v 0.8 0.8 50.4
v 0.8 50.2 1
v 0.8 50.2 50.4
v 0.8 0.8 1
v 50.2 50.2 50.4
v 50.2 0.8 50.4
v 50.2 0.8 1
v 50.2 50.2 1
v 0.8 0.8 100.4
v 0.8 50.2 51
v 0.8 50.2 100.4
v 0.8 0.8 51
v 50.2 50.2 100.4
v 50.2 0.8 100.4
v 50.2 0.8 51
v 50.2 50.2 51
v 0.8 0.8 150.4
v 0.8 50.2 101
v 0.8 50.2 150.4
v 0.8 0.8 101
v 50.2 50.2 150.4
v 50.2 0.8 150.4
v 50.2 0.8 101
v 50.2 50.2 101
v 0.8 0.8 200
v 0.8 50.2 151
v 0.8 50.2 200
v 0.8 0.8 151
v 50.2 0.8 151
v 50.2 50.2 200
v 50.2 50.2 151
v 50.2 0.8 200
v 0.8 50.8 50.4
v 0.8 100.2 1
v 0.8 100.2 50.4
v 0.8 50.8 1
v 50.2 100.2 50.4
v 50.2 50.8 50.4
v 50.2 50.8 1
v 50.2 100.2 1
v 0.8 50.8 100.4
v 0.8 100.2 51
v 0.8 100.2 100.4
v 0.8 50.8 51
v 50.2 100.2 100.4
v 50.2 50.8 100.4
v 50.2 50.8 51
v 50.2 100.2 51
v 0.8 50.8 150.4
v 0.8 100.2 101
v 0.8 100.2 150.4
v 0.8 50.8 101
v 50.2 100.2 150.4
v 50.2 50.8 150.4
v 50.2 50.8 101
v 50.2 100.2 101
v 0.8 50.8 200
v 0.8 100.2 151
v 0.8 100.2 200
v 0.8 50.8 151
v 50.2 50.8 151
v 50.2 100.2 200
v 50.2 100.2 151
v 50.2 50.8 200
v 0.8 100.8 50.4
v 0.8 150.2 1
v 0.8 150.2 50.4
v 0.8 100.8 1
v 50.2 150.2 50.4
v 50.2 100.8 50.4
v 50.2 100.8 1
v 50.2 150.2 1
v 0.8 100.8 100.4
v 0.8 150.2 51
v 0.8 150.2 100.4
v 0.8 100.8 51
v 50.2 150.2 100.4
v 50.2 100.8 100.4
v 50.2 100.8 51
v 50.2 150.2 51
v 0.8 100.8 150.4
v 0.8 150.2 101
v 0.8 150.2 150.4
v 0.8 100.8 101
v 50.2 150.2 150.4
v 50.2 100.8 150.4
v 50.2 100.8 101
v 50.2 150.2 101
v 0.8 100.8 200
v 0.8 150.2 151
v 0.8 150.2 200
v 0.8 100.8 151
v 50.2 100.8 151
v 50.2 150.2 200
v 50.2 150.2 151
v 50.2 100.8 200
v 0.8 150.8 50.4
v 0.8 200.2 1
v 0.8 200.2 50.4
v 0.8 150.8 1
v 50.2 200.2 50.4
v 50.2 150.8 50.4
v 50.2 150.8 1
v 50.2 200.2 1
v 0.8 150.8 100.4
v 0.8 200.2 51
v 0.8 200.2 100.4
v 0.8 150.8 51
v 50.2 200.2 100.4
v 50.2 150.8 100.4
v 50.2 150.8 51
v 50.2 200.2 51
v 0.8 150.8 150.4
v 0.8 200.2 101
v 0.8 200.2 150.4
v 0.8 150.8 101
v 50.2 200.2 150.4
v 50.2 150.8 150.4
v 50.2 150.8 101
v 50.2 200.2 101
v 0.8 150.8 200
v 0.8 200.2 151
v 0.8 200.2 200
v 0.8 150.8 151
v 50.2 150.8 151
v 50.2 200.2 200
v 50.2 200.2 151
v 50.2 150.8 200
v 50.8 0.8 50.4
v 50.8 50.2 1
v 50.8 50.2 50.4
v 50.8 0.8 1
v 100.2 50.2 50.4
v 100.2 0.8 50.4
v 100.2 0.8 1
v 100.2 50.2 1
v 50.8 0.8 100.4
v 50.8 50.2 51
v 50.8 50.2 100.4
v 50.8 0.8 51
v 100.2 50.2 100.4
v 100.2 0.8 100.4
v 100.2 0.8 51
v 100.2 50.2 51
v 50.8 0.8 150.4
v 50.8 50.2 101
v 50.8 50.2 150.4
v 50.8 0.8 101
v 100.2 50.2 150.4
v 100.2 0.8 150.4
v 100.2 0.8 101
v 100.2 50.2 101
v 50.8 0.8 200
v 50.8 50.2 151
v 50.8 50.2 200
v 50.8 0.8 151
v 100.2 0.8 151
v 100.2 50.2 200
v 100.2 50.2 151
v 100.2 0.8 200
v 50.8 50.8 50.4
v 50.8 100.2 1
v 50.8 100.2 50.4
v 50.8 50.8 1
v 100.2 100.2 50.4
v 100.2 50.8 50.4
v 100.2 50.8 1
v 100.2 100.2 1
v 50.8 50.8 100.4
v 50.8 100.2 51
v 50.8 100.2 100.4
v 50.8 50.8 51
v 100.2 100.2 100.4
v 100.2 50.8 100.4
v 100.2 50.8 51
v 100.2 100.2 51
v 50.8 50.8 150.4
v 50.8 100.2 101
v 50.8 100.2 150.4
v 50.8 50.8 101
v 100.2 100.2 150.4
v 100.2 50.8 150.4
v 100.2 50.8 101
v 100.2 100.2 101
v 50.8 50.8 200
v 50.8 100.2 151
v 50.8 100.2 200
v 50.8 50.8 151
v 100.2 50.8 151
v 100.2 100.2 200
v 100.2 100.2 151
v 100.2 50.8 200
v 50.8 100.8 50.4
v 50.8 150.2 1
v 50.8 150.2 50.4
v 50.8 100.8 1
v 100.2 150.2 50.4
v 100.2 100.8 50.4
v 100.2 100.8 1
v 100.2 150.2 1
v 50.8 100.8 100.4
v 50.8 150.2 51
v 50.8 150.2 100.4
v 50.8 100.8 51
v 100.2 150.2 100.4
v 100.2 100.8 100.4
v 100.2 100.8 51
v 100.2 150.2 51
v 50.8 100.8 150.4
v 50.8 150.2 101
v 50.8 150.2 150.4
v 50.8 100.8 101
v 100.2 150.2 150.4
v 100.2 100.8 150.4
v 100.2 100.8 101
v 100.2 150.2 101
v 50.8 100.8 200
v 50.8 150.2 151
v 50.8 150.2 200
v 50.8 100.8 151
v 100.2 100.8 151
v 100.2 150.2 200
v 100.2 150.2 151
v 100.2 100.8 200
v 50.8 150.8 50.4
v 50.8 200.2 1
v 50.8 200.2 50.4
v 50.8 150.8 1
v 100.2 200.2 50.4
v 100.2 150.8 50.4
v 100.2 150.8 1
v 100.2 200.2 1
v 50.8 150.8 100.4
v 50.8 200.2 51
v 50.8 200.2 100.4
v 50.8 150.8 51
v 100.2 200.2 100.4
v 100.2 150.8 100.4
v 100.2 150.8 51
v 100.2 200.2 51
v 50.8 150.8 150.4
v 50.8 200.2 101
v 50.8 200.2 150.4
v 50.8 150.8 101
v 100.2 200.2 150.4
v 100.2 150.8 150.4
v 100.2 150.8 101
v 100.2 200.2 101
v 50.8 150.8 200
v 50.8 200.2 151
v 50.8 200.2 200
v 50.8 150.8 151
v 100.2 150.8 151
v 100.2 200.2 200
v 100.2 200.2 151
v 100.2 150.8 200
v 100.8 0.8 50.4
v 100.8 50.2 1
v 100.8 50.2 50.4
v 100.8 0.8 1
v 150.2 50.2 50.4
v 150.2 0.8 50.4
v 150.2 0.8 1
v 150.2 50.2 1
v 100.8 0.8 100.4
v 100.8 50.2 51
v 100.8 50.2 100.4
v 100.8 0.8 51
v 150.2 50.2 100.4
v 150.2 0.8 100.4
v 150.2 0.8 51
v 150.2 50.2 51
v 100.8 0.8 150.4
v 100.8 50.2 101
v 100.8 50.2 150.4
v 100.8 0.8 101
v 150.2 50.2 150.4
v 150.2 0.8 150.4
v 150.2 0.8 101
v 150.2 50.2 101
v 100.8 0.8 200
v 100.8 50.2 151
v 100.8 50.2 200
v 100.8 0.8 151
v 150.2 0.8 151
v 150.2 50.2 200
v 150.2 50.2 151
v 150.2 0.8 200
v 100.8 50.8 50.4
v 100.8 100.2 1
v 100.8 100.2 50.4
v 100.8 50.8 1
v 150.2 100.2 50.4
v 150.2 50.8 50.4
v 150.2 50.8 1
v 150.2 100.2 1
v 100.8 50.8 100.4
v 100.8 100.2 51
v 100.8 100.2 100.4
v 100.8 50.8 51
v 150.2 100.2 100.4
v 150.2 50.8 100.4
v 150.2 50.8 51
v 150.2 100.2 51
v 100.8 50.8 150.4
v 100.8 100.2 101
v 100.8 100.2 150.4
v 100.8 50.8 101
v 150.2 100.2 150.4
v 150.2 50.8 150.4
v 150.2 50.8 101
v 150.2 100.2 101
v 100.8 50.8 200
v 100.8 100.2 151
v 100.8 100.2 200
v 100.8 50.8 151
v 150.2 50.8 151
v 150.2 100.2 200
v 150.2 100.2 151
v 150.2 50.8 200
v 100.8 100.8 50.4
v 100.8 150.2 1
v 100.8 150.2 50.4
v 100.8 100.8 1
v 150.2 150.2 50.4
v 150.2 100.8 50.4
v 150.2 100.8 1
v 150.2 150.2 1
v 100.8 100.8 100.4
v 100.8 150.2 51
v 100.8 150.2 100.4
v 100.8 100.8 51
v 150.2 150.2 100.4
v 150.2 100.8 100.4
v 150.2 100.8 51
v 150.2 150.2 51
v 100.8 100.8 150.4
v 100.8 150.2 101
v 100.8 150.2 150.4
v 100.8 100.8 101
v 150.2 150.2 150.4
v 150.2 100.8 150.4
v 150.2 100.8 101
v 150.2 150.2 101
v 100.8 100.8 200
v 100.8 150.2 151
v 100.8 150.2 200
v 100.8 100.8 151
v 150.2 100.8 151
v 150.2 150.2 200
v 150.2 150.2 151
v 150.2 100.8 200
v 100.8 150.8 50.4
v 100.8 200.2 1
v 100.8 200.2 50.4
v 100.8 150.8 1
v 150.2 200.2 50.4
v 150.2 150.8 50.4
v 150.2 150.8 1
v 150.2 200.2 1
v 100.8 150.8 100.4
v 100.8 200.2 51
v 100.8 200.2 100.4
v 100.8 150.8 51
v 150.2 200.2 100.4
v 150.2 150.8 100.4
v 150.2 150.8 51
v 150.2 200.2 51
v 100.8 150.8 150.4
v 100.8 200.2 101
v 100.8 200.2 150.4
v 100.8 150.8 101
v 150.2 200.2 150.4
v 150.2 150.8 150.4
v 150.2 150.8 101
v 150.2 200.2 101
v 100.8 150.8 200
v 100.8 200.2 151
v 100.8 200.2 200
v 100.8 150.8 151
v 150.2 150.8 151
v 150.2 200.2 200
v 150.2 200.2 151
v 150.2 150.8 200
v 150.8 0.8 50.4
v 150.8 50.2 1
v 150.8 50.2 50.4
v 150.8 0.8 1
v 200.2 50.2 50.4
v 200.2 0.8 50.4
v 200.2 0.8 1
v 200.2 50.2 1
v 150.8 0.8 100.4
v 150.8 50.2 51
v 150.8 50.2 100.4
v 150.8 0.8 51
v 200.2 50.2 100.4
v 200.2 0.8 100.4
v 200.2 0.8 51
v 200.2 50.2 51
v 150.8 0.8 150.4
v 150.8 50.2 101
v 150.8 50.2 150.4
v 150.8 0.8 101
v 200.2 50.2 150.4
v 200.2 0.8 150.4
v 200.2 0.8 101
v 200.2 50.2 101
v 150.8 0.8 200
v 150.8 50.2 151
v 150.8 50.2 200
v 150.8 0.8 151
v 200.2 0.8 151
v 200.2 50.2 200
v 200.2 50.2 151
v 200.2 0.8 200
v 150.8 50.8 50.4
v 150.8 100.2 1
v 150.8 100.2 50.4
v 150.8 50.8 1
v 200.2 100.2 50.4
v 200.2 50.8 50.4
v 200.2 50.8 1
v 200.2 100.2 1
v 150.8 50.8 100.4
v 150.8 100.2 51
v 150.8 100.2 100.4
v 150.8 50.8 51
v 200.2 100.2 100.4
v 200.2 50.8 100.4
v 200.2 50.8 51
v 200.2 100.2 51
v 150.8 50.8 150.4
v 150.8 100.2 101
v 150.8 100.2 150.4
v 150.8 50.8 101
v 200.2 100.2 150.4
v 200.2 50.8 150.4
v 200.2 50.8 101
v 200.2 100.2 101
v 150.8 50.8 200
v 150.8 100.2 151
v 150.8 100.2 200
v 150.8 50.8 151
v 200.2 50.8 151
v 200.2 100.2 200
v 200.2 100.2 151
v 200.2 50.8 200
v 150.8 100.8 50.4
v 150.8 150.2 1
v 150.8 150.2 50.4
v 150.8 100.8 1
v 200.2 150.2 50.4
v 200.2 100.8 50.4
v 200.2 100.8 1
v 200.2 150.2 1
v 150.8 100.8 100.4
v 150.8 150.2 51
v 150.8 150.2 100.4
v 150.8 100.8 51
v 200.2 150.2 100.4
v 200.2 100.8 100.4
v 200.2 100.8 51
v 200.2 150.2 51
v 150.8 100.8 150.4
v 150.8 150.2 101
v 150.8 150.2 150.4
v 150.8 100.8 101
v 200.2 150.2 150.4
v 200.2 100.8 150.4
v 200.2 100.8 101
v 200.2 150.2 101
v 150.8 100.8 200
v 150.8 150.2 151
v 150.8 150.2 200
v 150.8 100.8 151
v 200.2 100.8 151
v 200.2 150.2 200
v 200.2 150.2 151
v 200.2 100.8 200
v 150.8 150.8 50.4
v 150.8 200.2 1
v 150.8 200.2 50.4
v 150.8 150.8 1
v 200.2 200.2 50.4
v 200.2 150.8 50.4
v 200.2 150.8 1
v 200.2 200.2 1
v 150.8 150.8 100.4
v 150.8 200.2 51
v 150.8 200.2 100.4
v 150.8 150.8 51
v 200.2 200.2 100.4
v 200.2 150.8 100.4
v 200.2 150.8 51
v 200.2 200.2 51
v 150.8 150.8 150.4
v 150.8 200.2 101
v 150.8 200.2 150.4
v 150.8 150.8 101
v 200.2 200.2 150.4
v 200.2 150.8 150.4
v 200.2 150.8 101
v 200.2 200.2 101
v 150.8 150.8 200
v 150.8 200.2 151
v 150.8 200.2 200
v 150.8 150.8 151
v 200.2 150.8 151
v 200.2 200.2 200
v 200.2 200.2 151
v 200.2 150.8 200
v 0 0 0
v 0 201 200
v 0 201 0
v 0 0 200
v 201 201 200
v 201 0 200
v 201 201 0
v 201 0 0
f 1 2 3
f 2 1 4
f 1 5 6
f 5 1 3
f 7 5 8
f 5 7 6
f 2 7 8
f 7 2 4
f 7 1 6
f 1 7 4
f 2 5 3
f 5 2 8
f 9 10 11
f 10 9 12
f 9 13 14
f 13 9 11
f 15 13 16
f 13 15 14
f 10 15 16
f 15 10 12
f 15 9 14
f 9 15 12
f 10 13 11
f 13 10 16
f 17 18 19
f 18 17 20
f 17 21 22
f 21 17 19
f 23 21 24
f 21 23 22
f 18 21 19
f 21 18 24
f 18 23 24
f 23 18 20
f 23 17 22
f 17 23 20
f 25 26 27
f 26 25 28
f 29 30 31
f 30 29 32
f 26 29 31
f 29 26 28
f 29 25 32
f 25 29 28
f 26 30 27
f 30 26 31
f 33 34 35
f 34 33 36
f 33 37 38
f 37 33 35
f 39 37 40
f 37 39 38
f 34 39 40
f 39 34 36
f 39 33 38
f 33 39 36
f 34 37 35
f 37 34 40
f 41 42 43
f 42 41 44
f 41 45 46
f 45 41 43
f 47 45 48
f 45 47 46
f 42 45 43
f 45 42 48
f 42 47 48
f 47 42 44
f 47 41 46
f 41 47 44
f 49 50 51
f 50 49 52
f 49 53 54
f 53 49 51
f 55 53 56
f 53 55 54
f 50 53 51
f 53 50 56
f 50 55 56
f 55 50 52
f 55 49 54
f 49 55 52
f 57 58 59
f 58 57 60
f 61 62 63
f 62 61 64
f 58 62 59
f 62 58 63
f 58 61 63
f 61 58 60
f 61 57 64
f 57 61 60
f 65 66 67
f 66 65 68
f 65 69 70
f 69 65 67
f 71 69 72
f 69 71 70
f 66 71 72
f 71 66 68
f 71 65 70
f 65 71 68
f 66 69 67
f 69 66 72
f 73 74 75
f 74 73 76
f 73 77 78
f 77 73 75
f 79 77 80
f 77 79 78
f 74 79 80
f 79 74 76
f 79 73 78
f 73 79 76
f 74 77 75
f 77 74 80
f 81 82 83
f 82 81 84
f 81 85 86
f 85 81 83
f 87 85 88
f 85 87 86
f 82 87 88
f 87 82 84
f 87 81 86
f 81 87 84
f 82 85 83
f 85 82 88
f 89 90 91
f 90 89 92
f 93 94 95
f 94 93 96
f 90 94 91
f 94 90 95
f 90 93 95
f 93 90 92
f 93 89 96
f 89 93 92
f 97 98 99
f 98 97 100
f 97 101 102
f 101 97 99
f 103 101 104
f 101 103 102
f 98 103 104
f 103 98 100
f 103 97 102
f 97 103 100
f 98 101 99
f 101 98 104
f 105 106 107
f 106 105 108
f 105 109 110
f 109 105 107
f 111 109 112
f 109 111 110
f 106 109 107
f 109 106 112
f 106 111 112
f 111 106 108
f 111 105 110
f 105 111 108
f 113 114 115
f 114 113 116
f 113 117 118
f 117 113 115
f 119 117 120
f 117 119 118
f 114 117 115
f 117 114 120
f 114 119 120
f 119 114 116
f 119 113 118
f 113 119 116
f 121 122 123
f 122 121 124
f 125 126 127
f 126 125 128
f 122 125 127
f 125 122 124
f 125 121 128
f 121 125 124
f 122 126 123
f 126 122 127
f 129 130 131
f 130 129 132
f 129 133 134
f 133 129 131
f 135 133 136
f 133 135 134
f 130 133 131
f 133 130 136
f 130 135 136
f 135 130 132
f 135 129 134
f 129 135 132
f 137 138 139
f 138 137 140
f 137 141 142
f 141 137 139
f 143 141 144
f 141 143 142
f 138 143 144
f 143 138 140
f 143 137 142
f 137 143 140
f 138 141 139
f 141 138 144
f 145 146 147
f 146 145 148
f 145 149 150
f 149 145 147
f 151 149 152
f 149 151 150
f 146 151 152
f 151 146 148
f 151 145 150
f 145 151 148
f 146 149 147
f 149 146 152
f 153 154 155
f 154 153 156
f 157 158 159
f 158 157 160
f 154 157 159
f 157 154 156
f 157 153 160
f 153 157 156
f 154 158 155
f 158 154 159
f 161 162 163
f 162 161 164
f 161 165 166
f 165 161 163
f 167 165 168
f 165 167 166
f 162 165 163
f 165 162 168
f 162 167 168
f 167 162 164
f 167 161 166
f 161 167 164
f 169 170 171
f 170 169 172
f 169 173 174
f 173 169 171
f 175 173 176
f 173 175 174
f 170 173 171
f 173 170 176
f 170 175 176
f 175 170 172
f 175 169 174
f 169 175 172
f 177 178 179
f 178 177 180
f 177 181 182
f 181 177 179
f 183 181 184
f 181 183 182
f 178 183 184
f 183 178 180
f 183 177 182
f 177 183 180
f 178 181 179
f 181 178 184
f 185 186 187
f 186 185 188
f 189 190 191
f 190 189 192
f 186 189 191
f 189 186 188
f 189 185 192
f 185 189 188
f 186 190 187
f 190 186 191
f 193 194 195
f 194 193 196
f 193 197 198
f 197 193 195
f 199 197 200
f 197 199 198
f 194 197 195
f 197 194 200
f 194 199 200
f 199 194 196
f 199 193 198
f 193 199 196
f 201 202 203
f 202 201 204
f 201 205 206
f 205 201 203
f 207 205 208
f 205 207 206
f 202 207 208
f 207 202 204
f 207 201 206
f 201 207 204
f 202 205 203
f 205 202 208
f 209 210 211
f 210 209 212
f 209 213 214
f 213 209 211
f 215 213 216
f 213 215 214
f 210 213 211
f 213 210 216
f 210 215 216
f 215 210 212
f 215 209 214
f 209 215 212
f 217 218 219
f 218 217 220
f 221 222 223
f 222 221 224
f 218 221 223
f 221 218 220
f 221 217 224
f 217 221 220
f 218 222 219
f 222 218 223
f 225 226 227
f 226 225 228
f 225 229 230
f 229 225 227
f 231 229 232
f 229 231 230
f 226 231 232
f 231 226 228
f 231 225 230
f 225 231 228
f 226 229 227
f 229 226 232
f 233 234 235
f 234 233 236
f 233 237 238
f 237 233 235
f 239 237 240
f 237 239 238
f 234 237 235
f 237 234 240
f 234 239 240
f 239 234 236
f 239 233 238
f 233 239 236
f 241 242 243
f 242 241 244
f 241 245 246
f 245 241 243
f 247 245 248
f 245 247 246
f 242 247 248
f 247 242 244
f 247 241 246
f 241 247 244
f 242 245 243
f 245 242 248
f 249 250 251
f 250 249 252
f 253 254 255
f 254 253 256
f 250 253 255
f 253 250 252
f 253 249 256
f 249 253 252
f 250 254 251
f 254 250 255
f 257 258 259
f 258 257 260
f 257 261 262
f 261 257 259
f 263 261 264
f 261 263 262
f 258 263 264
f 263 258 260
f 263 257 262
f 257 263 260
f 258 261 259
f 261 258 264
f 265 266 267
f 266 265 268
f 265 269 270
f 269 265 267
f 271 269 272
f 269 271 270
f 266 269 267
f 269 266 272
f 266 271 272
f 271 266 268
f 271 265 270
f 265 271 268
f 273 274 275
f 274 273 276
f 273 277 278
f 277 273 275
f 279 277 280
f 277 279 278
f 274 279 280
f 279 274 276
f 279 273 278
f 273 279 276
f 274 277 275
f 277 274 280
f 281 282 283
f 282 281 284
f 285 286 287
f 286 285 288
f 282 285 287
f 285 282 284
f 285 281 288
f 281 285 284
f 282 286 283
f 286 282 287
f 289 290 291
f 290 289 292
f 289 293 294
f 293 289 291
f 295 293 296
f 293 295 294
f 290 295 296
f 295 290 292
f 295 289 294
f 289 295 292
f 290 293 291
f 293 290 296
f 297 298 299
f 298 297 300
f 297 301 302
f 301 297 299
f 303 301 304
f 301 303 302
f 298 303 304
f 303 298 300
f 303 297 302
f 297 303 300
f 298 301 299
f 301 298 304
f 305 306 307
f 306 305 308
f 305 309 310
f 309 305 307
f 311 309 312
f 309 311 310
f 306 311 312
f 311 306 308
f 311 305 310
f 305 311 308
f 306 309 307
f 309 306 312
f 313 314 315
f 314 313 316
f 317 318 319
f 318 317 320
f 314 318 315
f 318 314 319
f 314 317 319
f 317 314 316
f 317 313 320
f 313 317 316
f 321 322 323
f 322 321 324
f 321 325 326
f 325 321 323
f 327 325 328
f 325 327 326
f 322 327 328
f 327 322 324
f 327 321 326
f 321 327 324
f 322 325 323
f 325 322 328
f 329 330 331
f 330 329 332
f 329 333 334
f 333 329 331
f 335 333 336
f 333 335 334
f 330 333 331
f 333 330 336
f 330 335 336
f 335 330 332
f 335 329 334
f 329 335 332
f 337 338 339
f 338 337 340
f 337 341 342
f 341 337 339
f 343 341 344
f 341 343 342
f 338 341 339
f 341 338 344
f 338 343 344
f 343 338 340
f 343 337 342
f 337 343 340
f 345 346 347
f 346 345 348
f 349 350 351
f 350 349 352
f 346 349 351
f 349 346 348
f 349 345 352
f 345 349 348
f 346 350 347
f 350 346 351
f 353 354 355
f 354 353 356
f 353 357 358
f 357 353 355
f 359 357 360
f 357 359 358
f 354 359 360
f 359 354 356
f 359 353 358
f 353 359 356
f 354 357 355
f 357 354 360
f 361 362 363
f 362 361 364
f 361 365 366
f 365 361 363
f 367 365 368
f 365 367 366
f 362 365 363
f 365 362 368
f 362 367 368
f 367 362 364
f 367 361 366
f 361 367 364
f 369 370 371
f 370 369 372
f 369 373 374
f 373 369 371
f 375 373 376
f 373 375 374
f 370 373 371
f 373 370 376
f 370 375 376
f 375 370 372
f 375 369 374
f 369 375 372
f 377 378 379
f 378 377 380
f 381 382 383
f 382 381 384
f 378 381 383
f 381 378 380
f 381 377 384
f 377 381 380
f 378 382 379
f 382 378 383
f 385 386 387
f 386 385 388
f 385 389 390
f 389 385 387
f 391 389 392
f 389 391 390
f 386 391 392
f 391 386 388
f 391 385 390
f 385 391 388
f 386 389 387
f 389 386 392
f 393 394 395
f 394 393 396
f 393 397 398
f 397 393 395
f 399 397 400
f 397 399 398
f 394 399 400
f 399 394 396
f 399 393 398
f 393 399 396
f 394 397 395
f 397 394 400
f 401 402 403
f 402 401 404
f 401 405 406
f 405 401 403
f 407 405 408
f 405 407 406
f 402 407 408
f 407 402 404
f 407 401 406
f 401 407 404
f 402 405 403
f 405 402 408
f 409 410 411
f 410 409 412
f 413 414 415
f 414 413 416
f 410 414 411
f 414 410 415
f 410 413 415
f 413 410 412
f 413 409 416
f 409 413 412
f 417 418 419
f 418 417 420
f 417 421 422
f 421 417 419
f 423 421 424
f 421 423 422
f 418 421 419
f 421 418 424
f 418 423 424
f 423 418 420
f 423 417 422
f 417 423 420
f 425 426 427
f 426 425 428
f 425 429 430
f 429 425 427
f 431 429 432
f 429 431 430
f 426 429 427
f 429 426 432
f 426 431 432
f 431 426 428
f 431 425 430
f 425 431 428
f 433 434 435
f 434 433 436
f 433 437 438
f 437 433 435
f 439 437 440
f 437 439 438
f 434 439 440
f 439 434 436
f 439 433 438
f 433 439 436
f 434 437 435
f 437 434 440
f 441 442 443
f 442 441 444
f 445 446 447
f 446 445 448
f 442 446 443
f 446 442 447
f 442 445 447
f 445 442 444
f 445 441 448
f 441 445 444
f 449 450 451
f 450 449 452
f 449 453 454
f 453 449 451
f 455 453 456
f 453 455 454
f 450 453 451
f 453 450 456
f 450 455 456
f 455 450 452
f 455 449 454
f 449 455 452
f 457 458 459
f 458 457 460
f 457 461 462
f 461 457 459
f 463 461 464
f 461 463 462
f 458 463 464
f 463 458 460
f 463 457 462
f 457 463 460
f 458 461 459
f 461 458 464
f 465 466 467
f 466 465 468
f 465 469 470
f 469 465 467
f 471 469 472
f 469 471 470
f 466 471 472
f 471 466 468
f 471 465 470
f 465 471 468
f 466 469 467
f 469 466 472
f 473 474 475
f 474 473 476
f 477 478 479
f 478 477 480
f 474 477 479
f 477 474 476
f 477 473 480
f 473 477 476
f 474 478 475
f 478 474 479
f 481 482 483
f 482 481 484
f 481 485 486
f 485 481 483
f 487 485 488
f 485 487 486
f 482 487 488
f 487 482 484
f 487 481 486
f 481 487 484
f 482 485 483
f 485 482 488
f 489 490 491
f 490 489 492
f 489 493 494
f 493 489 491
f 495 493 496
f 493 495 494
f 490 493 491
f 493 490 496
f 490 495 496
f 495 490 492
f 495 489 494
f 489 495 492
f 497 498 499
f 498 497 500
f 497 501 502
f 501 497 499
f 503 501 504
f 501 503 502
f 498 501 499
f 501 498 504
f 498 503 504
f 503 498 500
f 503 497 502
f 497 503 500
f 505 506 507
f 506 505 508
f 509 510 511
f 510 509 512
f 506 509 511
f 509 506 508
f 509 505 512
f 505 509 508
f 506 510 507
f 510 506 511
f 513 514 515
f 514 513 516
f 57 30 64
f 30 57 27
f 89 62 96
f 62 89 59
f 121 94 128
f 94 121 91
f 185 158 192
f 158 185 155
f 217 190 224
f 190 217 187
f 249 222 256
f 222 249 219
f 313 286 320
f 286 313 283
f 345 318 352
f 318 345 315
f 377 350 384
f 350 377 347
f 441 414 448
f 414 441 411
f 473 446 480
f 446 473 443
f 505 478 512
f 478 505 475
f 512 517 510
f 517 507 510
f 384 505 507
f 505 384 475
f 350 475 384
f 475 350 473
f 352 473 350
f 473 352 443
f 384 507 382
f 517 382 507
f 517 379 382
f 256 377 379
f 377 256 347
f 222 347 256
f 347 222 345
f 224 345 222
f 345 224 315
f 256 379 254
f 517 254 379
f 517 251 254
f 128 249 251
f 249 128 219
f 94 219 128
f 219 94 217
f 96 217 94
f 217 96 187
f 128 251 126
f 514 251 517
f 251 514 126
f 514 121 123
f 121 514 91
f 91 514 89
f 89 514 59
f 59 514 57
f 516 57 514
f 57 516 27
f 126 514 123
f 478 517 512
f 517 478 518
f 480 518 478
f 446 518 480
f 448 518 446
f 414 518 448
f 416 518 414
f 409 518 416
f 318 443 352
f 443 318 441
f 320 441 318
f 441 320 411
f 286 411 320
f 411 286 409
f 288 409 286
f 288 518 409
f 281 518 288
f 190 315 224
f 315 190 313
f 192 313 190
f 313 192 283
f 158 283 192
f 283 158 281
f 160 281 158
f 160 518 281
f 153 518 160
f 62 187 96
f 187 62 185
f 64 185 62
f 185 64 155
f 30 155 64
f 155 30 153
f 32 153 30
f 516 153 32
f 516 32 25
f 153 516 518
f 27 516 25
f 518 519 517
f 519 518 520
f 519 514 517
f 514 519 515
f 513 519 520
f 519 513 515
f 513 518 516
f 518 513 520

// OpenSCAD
difference() {
cube([201, 201, 200]);
for (i = [0:50:150]){
	for (j = [0:50:150]){
		for (k = [0:50:150]){
			translate([0.8+i,0.8+j,1+k])
				cube([49.4, 49.4, 49.4]);
		}
	}
}
}

//	
